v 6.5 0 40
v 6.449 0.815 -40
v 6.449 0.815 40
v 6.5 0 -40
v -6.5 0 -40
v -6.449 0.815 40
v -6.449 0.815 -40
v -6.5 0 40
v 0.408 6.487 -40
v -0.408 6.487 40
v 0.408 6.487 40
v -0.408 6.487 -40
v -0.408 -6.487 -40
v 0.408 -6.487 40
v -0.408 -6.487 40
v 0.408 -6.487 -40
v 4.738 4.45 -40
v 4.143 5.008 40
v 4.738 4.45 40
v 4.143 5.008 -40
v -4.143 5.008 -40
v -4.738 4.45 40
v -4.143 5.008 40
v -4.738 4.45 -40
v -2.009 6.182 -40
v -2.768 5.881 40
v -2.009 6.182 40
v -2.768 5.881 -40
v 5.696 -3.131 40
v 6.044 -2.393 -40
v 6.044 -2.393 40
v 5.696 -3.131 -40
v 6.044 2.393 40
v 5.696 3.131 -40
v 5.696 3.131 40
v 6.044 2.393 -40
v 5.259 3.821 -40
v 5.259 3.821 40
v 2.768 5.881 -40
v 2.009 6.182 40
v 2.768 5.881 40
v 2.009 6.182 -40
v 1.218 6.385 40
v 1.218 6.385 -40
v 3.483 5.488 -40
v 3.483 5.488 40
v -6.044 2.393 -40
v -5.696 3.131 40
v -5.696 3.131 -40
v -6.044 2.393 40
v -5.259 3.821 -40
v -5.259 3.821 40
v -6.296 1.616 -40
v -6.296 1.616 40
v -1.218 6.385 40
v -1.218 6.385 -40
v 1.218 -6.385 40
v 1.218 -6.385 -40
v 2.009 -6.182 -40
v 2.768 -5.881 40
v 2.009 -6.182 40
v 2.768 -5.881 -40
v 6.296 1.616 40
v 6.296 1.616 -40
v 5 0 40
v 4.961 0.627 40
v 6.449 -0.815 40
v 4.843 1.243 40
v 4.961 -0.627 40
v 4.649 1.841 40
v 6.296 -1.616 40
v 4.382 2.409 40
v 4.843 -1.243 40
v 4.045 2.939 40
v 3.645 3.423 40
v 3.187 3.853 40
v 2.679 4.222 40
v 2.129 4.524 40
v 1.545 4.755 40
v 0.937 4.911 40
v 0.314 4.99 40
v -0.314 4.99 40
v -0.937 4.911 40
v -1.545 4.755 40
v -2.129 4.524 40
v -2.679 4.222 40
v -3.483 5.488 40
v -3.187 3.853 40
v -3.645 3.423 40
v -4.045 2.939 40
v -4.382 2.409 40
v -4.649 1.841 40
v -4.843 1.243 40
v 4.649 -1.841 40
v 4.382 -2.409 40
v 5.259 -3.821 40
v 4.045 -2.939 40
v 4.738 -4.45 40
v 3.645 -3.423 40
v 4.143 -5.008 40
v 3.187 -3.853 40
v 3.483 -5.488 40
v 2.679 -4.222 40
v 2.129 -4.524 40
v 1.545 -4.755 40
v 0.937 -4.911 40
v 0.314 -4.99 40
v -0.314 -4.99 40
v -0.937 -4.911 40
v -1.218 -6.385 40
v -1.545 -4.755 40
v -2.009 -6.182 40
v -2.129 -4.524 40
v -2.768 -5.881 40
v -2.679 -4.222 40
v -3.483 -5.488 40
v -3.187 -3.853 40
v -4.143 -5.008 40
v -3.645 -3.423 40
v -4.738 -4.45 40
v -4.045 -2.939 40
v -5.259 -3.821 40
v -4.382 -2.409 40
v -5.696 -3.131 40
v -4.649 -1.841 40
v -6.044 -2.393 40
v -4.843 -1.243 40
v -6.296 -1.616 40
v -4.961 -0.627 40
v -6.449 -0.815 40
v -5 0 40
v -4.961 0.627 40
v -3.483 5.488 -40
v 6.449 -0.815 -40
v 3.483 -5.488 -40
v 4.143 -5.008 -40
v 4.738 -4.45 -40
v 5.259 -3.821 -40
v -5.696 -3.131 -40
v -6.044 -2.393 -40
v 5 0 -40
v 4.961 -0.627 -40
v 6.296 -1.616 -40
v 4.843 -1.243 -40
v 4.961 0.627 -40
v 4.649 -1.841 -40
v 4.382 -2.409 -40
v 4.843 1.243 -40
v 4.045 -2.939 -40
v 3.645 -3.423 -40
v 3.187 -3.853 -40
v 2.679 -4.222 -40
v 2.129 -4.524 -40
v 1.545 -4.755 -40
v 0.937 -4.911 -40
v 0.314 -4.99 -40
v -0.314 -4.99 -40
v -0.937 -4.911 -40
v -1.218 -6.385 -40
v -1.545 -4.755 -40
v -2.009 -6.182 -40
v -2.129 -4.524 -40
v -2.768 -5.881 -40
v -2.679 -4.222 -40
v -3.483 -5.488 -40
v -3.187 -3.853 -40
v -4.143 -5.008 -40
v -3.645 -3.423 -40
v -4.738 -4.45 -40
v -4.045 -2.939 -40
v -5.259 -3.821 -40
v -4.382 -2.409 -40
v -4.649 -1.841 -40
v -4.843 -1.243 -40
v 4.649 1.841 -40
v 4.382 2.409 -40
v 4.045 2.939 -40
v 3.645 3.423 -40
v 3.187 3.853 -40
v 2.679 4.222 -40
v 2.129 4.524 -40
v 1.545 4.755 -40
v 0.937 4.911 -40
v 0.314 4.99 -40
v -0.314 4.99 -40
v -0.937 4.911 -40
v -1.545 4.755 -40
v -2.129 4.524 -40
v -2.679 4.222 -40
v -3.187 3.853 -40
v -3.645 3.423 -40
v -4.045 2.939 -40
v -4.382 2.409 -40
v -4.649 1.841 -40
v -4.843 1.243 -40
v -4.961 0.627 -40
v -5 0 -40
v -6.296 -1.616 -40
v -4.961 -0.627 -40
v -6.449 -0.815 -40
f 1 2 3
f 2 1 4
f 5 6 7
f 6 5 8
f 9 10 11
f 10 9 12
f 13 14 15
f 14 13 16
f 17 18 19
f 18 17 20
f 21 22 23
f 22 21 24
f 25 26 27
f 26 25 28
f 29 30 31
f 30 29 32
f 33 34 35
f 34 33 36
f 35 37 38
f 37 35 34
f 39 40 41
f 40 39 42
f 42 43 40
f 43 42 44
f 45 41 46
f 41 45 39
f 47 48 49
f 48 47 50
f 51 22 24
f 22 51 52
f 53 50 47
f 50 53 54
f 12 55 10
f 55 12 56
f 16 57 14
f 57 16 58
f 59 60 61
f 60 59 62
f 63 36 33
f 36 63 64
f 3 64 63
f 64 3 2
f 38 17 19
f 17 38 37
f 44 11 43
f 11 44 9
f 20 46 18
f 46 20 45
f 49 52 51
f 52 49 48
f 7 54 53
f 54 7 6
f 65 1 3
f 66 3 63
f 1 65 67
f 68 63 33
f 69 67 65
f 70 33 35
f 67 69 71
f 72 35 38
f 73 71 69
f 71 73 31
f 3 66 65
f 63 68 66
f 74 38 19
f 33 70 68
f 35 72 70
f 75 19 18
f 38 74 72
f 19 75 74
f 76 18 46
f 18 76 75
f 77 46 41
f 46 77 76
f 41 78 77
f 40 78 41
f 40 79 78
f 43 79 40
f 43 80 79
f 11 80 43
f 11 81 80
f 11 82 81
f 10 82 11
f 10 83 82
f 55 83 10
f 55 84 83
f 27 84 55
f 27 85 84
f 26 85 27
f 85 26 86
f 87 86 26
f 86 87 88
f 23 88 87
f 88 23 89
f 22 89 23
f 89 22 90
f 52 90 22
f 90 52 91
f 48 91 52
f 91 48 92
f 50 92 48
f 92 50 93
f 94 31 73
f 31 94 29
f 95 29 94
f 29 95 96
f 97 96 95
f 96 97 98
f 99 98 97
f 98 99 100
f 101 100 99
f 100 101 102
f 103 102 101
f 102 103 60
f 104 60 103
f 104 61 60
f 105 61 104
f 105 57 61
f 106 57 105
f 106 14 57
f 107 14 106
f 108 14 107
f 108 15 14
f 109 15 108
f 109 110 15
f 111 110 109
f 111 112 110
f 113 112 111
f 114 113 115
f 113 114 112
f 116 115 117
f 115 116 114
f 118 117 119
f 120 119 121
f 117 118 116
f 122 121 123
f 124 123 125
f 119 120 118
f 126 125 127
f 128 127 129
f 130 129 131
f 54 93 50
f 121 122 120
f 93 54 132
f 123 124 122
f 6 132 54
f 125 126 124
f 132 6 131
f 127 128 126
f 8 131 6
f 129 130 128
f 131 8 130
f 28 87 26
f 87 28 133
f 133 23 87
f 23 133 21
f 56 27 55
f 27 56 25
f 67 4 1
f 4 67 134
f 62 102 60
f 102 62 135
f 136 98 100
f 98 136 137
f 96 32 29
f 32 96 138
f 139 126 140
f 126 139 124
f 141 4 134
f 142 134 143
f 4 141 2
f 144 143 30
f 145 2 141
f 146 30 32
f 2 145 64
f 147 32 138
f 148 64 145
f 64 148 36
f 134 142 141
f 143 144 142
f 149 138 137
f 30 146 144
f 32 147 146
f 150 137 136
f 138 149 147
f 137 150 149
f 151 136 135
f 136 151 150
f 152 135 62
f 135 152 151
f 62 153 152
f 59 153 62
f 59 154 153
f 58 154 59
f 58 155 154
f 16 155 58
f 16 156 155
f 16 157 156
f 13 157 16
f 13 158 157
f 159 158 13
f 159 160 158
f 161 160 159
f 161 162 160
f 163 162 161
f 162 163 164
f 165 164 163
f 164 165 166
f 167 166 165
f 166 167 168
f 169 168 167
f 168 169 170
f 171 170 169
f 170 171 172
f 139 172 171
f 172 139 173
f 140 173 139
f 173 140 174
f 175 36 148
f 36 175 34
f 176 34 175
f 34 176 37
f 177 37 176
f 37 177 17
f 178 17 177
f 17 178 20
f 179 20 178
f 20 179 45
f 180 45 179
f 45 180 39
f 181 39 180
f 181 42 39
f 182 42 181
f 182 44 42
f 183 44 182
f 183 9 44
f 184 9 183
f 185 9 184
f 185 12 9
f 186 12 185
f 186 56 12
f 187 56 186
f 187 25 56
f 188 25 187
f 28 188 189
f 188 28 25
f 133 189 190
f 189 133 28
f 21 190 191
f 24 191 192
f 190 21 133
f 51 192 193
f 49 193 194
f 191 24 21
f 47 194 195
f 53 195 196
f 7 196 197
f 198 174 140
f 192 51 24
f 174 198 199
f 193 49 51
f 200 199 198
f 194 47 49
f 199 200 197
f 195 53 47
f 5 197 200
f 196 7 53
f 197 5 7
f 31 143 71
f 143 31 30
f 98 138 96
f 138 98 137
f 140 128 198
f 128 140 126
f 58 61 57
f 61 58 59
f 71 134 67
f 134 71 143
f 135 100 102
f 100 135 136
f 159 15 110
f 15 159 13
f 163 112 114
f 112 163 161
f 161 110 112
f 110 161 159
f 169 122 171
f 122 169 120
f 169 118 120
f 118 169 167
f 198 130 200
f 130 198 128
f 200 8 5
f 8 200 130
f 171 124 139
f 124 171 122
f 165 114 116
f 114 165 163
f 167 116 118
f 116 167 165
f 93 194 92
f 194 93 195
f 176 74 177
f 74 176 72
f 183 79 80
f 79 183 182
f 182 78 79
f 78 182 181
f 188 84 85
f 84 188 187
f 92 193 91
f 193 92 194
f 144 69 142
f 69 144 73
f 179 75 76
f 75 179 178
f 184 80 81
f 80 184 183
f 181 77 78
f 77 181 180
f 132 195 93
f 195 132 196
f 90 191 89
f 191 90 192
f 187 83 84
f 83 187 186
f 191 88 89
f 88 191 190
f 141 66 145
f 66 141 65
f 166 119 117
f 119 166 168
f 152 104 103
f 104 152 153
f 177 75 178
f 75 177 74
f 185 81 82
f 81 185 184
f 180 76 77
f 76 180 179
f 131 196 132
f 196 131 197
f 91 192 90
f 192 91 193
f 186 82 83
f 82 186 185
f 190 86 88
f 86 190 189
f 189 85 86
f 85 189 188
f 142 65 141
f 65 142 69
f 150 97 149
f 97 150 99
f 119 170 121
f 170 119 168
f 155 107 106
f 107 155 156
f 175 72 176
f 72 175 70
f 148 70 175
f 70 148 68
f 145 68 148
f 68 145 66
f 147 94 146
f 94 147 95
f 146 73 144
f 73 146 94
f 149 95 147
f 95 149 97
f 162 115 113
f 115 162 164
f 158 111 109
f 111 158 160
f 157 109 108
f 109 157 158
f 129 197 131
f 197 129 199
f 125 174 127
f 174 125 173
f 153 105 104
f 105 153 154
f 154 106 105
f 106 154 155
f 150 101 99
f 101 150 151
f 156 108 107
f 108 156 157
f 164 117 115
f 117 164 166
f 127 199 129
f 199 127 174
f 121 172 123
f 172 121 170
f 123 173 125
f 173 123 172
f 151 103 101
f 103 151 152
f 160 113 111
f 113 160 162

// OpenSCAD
$fn = 50;


difference() {
	union() {
		translate(v = [0, 0, -40.0000000000]) {
			cylinder(h = 80, r = 6.5000000000);
		}
	}
	union() {
		translate(v = [0, 0, -100.0000000000]) {
			cylinder(h = 200, r = 5);
		}
	}
}
